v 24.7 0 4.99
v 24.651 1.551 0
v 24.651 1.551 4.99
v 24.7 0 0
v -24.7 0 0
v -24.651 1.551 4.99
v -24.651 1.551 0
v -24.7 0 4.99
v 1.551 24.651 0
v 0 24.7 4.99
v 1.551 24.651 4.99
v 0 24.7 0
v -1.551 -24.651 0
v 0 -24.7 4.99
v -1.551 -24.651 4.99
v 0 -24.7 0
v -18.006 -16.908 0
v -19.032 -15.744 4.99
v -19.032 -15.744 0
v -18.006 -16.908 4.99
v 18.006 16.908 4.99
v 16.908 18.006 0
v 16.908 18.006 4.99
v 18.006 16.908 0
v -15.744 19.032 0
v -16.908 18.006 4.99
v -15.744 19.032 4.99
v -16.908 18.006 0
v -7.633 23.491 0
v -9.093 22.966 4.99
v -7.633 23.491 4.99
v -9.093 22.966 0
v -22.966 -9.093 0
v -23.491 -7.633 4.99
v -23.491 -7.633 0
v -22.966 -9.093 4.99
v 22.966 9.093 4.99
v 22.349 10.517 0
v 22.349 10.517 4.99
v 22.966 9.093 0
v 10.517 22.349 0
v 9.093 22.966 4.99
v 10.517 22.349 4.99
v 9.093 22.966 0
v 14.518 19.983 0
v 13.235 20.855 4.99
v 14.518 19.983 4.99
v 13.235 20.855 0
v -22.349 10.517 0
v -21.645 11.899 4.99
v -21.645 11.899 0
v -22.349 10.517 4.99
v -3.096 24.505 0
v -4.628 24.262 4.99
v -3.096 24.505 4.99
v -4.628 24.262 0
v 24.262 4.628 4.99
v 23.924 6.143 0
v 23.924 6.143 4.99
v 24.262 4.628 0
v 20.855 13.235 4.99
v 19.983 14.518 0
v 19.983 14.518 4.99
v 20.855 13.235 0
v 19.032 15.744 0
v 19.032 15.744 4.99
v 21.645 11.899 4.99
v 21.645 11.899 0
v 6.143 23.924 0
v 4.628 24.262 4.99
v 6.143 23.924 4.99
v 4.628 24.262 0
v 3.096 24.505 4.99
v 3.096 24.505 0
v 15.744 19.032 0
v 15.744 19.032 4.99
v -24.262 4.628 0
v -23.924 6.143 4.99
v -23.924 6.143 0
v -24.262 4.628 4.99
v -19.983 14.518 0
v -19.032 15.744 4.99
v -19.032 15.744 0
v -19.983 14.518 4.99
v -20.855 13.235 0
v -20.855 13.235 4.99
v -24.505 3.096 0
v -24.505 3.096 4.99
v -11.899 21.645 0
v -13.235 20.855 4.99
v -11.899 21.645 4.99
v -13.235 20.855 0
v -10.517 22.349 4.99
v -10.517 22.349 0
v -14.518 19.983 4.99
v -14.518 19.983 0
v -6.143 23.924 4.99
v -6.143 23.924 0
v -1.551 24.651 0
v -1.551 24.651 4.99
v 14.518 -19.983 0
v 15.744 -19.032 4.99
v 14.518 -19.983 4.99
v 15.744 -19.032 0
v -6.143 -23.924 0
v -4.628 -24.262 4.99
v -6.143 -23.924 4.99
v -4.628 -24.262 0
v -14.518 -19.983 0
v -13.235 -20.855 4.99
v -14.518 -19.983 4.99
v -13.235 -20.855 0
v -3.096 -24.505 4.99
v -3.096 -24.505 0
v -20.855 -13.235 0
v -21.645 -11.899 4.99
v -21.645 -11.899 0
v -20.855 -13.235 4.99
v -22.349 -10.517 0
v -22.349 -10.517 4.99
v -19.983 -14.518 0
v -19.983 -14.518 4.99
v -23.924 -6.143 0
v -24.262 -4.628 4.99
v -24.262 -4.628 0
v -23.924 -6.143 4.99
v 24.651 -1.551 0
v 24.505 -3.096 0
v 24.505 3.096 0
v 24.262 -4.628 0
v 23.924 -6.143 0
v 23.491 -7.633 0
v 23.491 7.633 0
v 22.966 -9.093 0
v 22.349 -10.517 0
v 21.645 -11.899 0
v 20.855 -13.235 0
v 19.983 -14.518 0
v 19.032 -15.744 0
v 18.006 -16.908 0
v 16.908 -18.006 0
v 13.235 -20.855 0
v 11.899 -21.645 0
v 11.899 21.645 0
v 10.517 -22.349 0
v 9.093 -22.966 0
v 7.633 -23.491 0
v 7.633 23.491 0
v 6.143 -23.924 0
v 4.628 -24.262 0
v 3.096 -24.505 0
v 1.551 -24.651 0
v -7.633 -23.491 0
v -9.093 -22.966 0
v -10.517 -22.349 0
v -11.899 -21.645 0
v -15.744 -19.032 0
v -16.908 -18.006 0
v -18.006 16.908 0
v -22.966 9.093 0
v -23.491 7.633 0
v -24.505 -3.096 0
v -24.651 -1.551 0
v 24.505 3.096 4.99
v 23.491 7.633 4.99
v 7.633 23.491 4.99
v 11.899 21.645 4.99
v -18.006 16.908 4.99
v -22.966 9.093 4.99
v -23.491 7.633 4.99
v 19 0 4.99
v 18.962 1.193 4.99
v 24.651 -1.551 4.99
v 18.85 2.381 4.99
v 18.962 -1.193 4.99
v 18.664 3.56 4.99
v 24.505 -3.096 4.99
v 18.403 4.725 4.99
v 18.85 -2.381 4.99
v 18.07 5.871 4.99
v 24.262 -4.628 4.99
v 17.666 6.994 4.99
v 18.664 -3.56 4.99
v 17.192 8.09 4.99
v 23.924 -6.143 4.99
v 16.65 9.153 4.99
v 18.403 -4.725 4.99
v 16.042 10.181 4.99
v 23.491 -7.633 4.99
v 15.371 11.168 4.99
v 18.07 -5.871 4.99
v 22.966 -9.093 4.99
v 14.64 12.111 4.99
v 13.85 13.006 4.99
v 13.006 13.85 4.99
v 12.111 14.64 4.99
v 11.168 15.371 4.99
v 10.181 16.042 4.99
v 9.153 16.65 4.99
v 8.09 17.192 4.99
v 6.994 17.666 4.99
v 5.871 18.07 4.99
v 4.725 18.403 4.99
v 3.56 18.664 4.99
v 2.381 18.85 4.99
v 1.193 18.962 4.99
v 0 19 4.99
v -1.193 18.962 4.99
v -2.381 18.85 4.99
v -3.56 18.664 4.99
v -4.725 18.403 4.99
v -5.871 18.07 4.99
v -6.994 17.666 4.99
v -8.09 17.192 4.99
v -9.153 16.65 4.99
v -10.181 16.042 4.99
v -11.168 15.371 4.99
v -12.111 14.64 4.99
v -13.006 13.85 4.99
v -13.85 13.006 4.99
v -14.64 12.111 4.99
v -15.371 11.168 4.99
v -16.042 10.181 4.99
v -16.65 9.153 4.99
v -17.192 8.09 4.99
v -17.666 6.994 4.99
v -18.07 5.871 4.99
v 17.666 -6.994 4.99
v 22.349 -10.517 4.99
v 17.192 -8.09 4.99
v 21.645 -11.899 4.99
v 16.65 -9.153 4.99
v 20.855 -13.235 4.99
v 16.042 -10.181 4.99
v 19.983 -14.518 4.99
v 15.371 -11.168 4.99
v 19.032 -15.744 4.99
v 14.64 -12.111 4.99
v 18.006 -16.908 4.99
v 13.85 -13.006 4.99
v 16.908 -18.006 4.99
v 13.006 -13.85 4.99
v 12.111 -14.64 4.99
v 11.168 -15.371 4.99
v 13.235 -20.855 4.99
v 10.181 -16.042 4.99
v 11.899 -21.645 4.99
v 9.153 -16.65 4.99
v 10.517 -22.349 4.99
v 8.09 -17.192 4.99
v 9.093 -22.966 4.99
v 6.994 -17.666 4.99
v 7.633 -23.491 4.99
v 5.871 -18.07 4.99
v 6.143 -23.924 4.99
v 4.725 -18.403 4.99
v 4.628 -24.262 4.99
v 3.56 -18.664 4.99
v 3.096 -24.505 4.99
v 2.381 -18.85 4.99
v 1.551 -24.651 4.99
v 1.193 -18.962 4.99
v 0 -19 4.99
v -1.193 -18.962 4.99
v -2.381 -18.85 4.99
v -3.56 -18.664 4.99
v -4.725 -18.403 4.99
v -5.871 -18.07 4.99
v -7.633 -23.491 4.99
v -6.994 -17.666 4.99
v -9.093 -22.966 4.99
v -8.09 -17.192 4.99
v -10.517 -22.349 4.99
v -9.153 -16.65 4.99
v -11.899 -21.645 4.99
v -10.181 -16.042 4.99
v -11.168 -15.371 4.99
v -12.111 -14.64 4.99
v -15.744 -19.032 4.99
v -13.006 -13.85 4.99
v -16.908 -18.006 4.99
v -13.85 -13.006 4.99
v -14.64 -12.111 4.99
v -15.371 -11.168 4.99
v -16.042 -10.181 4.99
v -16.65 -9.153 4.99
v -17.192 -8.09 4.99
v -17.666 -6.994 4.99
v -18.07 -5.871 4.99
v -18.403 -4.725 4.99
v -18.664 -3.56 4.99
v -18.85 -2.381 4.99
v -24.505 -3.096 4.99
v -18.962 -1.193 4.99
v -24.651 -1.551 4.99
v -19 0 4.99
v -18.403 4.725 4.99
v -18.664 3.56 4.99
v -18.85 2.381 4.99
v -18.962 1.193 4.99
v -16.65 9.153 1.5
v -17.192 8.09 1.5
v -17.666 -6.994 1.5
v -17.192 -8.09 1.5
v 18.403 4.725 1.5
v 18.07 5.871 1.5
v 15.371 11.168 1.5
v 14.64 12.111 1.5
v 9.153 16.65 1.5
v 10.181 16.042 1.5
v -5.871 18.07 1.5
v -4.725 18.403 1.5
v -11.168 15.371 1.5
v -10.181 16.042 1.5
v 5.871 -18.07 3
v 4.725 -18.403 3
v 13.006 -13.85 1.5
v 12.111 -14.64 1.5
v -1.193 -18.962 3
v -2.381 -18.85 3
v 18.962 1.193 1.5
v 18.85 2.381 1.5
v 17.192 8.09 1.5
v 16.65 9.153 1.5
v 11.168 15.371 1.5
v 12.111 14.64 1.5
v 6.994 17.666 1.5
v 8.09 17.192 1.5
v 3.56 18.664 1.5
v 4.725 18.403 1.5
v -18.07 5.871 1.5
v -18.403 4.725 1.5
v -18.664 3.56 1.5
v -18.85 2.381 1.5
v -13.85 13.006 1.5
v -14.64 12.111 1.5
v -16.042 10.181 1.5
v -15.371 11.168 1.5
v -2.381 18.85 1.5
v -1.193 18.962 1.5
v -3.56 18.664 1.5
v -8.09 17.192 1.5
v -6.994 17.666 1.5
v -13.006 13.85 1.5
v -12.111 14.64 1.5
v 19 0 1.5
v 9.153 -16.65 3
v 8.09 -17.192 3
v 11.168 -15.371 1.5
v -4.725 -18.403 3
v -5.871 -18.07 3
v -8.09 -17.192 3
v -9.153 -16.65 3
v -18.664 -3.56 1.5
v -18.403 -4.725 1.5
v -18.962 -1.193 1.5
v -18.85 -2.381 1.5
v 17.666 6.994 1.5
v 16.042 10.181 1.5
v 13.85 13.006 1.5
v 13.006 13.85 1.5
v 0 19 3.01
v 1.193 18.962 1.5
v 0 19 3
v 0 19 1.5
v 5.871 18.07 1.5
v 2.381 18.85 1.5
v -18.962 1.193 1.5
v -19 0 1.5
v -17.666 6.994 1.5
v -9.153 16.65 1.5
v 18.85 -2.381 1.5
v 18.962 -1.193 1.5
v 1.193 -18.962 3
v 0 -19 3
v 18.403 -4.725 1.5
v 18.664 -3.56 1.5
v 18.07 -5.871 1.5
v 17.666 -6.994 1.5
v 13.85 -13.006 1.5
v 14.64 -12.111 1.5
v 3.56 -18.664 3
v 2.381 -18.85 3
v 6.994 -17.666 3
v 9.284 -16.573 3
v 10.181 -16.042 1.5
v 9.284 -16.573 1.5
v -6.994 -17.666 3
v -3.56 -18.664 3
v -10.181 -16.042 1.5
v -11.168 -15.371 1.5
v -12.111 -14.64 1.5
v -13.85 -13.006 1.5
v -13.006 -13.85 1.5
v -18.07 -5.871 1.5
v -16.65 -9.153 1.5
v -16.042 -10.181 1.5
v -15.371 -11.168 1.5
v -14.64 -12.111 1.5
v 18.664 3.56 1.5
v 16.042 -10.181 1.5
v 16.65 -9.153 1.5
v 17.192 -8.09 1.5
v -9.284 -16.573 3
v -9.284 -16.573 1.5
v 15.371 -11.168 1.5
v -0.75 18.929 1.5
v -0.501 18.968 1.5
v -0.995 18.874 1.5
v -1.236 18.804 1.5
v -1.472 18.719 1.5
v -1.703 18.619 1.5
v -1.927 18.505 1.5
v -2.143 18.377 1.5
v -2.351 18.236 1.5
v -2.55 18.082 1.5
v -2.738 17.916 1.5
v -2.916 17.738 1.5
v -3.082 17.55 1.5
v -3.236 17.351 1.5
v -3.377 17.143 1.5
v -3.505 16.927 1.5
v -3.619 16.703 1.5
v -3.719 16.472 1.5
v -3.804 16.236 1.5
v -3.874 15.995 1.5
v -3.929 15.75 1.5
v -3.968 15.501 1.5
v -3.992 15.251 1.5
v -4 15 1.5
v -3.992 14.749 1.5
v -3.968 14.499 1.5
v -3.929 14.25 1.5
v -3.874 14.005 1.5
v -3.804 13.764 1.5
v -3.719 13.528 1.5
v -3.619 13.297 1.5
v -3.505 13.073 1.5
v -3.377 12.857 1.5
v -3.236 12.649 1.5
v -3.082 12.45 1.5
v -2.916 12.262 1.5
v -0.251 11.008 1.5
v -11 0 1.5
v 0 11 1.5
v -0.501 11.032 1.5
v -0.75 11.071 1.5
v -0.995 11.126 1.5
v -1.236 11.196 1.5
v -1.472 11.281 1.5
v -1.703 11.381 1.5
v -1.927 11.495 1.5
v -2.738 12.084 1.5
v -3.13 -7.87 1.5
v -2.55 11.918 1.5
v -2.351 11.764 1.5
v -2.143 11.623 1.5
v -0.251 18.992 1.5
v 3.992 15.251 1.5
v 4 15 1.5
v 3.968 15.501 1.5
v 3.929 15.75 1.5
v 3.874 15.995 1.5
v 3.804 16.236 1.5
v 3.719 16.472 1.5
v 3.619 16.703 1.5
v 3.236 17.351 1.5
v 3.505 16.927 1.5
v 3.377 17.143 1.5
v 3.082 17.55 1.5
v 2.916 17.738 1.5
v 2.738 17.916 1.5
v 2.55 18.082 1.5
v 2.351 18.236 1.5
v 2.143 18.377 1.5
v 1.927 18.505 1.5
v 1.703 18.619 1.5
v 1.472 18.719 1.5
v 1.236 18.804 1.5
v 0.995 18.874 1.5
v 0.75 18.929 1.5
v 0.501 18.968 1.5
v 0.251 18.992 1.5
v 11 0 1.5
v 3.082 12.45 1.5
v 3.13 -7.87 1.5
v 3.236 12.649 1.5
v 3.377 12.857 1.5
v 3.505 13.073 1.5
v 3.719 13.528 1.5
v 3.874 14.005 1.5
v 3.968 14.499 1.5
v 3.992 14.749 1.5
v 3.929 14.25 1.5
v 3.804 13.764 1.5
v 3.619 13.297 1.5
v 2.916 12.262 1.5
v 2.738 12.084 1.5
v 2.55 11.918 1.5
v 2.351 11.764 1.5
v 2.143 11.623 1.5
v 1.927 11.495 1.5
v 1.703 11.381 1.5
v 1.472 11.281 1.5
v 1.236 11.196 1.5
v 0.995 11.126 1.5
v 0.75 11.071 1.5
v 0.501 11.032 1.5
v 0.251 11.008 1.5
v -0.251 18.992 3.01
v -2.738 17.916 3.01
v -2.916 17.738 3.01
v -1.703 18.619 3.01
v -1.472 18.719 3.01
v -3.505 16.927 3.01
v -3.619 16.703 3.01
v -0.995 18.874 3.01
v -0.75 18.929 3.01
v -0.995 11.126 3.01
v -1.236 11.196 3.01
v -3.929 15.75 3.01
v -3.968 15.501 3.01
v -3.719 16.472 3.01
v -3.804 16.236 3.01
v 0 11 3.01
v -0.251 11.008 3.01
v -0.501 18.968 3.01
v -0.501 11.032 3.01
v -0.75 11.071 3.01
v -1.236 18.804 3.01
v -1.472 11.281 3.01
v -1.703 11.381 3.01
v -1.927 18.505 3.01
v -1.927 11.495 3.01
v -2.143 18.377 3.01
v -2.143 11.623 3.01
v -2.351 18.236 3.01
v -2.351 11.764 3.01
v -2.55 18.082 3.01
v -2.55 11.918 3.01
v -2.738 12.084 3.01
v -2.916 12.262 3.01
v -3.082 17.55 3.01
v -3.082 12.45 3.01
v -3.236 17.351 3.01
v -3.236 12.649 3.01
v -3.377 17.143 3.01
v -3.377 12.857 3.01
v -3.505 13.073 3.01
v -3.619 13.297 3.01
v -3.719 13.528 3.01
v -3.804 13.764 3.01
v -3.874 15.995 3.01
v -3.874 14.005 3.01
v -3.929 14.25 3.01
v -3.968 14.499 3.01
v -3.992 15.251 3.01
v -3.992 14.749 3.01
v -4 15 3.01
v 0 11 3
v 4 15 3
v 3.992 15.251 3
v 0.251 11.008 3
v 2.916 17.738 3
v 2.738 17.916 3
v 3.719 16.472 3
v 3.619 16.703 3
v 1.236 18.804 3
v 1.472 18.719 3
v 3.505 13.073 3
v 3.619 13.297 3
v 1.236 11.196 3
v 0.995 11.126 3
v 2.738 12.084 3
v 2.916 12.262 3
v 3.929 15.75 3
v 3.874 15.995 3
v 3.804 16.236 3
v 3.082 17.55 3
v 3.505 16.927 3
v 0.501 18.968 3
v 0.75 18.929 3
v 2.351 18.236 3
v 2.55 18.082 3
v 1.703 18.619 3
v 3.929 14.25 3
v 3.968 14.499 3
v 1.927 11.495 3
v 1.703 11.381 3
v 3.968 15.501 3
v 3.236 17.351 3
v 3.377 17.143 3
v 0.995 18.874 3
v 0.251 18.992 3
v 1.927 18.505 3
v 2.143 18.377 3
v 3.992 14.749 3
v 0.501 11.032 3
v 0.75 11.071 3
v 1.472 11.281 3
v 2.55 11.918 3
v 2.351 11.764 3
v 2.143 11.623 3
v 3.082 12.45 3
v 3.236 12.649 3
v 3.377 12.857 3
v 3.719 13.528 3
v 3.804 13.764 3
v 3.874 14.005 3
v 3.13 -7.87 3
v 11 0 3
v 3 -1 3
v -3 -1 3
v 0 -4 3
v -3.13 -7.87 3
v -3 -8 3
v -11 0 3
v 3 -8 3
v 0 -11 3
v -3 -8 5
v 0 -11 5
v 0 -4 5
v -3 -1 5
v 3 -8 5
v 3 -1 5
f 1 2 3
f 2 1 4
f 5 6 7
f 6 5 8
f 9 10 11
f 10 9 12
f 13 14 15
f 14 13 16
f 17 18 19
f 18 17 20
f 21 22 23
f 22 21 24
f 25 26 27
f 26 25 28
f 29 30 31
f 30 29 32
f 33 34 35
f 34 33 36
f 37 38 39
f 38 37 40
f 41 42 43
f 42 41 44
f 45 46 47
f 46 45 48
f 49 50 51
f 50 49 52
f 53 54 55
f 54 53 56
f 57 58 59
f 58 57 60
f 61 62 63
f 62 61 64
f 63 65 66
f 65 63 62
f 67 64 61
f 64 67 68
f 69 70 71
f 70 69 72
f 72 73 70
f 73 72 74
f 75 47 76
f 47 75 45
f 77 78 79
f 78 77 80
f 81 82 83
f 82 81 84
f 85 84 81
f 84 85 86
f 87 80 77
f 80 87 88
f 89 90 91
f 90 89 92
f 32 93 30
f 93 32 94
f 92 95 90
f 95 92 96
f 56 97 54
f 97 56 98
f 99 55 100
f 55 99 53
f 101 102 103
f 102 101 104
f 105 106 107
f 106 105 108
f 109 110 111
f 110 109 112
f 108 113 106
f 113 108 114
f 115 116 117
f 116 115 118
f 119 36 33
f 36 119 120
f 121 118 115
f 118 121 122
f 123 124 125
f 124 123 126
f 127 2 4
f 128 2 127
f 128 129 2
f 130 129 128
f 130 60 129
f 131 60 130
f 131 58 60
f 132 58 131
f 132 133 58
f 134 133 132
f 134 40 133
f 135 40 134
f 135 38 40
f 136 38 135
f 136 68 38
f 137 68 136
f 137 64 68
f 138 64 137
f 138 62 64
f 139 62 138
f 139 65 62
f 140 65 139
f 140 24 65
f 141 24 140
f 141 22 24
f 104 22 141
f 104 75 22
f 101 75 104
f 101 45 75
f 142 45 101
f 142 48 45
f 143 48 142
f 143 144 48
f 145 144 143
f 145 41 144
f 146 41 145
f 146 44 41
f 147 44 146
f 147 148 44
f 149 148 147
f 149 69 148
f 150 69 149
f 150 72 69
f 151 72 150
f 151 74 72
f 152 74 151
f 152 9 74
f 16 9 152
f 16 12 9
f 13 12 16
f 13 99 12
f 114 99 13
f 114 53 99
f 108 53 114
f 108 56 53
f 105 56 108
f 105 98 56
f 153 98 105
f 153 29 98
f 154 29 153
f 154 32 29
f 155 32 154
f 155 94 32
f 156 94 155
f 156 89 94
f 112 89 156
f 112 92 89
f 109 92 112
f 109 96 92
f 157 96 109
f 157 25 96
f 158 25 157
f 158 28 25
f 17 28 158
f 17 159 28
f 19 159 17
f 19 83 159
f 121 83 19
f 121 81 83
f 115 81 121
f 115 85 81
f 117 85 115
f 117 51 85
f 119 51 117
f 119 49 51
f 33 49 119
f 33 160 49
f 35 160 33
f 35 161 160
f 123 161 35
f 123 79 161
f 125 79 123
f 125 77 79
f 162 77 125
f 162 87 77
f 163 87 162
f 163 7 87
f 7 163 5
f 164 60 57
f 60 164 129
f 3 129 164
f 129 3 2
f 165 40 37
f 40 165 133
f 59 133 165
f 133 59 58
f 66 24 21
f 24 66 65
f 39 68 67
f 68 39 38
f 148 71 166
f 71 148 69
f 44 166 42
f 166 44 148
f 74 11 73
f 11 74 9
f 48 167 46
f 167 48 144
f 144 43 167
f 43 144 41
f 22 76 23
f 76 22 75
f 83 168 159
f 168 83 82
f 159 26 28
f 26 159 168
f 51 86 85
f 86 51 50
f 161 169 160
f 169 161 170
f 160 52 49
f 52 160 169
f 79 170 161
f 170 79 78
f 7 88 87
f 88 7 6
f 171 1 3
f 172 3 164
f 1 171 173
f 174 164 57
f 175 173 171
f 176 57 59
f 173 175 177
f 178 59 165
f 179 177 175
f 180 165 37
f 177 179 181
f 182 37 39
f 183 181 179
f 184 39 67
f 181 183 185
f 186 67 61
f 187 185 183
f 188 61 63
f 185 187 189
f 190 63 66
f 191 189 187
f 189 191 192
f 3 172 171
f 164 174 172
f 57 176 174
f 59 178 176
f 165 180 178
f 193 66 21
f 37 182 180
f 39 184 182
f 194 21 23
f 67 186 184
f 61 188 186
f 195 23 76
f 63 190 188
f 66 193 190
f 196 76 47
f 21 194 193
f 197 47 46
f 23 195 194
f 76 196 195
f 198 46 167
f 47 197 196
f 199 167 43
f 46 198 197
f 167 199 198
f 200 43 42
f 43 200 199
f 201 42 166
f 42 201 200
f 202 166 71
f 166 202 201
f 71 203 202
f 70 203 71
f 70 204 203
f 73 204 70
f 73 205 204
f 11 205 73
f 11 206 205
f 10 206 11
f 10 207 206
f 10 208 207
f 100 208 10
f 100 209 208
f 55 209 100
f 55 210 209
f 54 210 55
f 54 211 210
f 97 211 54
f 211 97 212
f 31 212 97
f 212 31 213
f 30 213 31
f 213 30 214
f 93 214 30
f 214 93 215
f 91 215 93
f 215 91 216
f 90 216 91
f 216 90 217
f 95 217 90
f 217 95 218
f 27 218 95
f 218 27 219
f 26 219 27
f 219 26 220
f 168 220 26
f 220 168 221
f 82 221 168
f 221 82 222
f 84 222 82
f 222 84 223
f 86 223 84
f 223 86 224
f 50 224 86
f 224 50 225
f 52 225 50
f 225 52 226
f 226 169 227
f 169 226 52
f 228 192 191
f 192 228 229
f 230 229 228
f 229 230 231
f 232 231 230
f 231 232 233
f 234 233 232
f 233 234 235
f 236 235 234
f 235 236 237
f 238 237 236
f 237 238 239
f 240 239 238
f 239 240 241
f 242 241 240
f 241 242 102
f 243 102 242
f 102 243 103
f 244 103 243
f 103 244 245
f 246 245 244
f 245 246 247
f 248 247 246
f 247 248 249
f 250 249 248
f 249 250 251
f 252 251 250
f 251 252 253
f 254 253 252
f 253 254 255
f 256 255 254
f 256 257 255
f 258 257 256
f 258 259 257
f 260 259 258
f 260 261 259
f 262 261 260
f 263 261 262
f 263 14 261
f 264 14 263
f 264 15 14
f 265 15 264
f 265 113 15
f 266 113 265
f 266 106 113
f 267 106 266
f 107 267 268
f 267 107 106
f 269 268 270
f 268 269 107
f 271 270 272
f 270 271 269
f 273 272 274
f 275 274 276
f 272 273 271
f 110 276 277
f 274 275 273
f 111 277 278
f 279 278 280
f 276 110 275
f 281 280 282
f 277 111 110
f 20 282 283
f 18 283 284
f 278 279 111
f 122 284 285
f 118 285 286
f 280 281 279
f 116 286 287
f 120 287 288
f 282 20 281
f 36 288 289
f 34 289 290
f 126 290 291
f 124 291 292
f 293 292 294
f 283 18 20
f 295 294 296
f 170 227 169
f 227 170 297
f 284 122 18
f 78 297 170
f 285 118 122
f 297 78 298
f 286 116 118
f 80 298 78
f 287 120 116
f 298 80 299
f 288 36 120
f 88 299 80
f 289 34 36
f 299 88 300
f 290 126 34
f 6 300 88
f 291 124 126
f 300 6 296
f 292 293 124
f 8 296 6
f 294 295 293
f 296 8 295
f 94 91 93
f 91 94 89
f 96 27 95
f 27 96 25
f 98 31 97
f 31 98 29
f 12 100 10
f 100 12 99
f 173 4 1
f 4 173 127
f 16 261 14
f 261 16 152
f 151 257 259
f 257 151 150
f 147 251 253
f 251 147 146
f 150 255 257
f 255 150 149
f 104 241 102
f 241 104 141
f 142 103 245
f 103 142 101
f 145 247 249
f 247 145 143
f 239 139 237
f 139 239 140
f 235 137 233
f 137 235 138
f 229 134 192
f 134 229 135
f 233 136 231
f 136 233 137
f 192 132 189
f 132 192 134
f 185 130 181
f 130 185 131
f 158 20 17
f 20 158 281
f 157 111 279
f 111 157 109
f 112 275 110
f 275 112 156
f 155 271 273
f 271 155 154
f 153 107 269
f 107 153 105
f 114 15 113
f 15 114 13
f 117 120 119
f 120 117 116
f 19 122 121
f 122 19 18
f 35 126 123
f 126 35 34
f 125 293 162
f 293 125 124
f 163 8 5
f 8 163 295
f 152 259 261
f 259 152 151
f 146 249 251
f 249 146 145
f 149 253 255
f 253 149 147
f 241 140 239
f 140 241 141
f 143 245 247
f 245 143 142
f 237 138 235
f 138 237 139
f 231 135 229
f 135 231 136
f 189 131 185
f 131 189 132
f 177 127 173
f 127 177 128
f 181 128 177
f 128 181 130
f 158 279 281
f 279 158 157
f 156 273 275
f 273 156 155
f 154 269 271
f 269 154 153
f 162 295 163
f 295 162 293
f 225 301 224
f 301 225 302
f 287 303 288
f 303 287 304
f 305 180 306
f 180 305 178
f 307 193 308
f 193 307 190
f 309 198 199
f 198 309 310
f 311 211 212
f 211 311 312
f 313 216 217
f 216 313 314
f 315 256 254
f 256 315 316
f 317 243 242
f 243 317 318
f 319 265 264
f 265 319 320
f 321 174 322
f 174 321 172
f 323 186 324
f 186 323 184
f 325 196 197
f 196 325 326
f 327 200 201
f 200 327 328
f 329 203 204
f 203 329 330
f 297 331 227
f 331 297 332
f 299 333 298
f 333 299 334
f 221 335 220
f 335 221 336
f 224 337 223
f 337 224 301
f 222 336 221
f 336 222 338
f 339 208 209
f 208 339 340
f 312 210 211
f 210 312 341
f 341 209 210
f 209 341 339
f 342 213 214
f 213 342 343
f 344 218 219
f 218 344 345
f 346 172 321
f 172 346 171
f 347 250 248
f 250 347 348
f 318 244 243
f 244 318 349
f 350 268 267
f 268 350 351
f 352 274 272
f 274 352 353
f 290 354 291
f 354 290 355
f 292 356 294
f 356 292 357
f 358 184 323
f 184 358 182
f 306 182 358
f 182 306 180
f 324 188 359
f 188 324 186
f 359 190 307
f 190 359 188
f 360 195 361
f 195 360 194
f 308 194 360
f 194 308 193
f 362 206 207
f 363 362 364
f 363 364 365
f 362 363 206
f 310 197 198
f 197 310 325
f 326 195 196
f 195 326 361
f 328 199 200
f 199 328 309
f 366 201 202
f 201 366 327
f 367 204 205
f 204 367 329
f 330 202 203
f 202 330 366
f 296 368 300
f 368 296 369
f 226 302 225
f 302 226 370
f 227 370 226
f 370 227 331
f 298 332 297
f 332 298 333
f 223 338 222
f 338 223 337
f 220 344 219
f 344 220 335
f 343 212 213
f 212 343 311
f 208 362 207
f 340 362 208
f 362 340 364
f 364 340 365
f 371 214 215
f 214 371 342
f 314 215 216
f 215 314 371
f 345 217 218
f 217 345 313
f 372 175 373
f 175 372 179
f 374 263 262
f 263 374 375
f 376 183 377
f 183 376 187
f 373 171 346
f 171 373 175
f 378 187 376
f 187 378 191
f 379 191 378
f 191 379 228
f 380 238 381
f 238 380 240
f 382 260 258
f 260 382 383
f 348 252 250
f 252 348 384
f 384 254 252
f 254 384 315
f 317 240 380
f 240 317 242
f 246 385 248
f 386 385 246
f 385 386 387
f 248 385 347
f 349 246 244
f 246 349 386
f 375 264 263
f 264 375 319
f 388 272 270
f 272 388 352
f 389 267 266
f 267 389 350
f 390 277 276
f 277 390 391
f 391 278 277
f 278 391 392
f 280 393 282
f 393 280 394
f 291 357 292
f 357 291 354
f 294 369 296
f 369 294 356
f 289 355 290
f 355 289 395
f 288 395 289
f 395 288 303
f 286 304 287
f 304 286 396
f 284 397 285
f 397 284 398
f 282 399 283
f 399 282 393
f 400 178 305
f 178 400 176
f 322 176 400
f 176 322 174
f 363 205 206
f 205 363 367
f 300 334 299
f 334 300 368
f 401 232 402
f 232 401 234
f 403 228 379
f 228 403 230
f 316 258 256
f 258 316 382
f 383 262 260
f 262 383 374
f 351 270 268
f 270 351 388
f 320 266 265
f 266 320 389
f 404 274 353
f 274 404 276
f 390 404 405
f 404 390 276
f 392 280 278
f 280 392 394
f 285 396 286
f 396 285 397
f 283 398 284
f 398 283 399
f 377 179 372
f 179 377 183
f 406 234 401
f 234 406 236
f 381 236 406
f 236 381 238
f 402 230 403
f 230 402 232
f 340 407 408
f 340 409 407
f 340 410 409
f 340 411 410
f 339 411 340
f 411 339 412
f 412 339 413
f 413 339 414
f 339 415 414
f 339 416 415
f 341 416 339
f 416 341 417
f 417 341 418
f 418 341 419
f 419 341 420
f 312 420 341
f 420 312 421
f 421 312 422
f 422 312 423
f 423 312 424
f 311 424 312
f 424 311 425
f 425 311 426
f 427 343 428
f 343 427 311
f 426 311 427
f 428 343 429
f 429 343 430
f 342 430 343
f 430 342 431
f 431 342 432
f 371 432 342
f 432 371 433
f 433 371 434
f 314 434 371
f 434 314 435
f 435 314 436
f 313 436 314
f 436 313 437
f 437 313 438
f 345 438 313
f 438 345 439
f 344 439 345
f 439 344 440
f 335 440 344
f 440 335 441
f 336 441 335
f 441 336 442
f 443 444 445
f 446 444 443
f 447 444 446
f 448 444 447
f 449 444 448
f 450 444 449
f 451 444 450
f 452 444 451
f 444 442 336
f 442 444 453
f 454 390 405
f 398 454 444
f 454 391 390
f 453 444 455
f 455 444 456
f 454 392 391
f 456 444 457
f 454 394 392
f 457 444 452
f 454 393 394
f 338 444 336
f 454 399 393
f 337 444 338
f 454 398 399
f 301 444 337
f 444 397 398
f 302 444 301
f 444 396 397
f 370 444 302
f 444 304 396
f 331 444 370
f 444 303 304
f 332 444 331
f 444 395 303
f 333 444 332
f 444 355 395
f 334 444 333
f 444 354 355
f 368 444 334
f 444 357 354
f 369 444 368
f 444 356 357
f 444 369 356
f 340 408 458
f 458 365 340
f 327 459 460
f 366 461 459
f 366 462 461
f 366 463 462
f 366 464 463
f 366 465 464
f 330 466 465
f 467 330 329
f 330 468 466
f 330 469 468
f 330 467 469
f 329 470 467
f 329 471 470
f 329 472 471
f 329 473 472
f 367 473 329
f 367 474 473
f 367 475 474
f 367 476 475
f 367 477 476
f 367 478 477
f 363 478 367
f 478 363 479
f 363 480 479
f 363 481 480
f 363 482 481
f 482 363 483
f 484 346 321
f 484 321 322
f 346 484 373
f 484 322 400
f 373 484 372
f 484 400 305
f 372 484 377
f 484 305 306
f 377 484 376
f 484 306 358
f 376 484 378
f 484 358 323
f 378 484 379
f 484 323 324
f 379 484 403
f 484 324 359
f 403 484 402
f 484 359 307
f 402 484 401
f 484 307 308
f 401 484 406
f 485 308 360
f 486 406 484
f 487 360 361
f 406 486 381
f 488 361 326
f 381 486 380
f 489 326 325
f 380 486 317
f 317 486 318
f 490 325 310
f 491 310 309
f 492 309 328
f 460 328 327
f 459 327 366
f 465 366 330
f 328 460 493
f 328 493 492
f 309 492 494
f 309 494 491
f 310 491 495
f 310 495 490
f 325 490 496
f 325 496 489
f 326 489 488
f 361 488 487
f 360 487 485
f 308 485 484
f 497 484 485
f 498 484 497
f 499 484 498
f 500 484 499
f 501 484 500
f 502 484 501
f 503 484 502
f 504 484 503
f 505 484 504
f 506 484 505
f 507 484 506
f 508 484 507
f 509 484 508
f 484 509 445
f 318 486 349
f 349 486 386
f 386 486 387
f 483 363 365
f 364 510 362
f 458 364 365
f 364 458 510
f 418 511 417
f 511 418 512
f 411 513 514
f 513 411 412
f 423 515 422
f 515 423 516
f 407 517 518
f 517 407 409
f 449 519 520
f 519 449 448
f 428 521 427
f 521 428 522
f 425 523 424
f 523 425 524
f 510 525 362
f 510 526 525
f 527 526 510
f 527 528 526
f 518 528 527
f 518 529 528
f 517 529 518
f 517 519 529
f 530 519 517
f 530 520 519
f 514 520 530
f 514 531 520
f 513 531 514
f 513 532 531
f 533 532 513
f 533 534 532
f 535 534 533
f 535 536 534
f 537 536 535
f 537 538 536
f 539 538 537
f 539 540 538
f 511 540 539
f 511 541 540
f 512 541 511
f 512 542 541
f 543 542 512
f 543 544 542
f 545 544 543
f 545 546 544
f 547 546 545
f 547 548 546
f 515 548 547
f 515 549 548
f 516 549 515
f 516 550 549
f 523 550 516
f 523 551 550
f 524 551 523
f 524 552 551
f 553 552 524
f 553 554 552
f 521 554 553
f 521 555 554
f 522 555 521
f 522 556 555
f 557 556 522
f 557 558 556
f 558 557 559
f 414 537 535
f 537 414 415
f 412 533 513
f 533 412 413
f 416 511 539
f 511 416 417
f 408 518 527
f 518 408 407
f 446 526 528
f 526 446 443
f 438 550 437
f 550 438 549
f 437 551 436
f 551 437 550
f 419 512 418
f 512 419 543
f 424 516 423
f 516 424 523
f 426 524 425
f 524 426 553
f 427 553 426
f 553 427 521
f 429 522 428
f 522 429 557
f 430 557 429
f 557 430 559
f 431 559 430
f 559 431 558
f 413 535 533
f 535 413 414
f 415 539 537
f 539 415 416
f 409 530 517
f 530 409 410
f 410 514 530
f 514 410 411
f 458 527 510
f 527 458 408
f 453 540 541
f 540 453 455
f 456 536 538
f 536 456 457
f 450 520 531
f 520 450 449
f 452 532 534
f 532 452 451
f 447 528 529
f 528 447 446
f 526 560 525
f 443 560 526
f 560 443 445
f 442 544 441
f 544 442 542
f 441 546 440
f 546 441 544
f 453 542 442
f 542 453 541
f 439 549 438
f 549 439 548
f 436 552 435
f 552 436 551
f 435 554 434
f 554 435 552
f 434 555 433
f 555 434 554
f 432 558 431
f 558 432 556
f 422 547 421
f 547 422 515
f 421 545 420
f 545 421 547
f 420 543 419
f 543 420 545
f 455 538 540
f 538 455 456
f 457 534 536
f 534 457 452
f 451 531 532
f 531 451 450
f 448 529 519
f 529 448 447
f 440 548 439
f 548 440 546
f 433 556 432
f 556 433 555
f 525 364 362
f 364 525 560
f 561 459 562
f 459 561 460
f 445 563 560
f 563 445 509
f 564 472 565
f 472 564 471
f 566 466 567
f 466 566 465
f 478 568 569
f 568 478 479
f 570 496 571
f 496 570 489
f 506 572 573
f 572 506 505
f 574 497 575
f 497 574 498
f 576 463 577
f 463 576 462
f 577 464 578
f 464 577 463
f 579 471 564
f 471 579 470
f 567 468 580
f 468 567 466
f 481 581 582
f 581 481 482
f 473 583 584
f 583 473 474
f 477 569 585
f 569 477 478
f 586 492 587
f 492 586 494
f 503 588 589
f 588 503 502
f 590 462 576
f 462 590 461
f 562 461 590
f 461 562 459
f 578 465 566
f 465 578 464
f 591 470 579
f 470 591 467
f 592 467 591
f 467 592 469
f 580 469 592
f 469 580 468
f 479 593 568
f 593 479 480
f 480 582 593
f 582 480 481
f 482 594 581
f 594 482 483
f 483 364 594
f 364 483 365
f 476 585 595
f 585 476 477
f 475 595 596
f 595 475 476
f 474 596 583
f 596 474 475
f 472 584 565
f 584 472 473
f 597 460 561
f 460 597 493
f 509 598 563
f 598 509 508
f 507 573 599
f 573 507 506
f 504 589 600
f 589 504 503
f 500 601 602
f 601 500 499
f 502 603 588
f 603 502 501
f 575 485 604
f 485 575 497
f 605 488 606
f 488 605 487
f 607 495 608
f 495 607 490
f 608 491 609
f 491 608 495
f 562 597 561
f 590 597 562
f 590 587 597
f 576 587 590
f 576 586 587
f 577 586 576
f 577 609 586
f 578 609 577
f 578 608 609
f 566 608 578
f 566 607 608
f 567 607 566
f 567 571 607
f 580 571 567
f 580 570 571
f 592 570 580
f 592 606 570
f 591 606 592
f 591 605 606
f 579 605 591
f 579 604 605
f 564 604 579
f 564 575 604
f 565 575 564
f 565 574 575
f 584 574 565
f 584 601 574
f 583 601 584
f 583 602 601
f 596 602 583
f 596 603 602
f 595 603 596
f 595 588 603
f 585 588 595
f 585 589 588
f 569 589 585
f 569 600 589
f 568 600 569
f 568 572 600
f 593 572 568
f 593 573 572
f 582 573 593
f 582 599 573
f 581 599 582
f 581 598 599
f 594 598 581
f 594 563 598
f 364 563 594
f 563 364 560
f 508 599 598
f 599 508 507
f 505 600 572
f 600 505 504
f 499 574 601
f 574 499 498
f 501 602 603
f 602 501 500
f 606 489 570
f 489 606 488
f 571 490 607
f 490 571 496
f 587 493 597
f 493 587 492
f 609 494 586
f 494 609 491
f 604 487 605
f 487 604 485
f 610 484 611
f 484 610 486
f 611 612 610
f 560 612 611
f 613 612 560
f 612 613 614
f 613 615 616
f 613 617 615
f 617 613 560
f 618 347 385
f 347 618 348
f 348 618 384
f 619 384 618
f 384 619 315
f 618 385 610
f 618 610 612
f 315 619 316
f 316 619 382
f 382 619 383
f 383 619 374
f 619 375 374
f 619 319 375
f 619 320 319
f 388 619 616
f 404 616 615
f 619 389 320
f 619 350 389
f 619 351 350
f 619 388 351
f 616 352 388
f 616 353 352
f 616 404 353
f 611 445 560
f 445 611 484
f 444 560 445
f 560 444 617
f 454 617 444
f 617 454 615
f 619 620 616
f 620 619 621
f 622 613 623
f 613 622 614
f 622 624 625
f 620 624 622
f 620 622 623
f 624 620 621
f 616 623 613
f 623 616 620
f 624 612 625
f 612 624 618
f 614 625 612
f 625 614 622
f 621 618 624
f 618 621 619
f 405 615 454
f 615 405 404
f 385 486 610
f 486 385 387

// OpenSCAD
//--Declaración de variables
layer1=3;   //Cabeza y Cuerpo
layer2=5;  //Libro
radio=4; // radio de la cabeza
leg1=11;
radio_base=leg1+radio*2;
tolerancia=0.01; // poner en cero para imprimir, sirve para previsualizar los colores

//--Principal
logo();
base();


//--Modulos
module logo(){

union(){
//--Cabeza
color("blue"){
    difference(){
        translate([0,leg1+radio,0])
        cylinder(r=radio, h=layer1+tolerancia, $fn=100, center=false);
        translate([0,leg1-radio/2,0])    
        cube([radio*2,radio*3,layer1+5]);
    }
}

color("white"){
    difference(){
        translate([0,leg1+radio,0])
        cylinder(r=radio, h=layer1, $fn=100, center=false);
        translate([-radio*2,leg1-radio/2,0])    
        cube([radio*2,radio*3,layer1+5]);
    }
}


//--Cuerpo
color("white"){
    linear_extrude(height=layer1){
        polygon(points=[[0,-leg1],[0,leg1],[leg1,0]]);
    }
}

mirror([[1,0,0]]){
    color("blue"){
        linear_extrude(height=layer1){
            polygon(points=[[0,-leg1],[0,leg1],[leg1,0]]);
        }
    }
}


//--Libro
color("white"){
    linear_extrude(height=layer2){
        rotate([0,0,90])
        translate([-leg1,0,0])
        polygon(points=[[0,0],[7,0],[10,3],[3,3]]);
    }
}
mirror([[1,0,0]]){
    color("blue"){
        linear_extrude(height=layer2){
            rotate([0,0,90])
            translate([-leg1,0,0])
            polygon(points=[[0,0],[7,0],[10,3],[3,3]]);
        }
    }
}


//--Piernas
color("blue"){
    linear_extrude(height=layer1){
        polygon(points=[[0,-leg1],[0,-radio_base-1],[-leg1,-radio_base],[-leg1/4,-leg1*2/3]]);
    }
}

mirror([[1,0,0]]){
color("white"){
    linear_extrude(height=layer1){
        polygon(points=[[0,-leg1],[0,-radio_base-1],[-leg1,-radio_base],[-leg1/4,-leg1*2/3]]);
    }
}
}
}
}


module base(){
    color("red"){
    difference(){
        cylinder(r=radio_base*1.3, h=layer2-tolerancia, $fn=100, center=false);
        cylinder(r=radio_base, h=20, $fn=100, center=true);
        }
    cylinder(r=radio_base*1.3, h=layer1/2, $fn=100, center=false);
    }
}
